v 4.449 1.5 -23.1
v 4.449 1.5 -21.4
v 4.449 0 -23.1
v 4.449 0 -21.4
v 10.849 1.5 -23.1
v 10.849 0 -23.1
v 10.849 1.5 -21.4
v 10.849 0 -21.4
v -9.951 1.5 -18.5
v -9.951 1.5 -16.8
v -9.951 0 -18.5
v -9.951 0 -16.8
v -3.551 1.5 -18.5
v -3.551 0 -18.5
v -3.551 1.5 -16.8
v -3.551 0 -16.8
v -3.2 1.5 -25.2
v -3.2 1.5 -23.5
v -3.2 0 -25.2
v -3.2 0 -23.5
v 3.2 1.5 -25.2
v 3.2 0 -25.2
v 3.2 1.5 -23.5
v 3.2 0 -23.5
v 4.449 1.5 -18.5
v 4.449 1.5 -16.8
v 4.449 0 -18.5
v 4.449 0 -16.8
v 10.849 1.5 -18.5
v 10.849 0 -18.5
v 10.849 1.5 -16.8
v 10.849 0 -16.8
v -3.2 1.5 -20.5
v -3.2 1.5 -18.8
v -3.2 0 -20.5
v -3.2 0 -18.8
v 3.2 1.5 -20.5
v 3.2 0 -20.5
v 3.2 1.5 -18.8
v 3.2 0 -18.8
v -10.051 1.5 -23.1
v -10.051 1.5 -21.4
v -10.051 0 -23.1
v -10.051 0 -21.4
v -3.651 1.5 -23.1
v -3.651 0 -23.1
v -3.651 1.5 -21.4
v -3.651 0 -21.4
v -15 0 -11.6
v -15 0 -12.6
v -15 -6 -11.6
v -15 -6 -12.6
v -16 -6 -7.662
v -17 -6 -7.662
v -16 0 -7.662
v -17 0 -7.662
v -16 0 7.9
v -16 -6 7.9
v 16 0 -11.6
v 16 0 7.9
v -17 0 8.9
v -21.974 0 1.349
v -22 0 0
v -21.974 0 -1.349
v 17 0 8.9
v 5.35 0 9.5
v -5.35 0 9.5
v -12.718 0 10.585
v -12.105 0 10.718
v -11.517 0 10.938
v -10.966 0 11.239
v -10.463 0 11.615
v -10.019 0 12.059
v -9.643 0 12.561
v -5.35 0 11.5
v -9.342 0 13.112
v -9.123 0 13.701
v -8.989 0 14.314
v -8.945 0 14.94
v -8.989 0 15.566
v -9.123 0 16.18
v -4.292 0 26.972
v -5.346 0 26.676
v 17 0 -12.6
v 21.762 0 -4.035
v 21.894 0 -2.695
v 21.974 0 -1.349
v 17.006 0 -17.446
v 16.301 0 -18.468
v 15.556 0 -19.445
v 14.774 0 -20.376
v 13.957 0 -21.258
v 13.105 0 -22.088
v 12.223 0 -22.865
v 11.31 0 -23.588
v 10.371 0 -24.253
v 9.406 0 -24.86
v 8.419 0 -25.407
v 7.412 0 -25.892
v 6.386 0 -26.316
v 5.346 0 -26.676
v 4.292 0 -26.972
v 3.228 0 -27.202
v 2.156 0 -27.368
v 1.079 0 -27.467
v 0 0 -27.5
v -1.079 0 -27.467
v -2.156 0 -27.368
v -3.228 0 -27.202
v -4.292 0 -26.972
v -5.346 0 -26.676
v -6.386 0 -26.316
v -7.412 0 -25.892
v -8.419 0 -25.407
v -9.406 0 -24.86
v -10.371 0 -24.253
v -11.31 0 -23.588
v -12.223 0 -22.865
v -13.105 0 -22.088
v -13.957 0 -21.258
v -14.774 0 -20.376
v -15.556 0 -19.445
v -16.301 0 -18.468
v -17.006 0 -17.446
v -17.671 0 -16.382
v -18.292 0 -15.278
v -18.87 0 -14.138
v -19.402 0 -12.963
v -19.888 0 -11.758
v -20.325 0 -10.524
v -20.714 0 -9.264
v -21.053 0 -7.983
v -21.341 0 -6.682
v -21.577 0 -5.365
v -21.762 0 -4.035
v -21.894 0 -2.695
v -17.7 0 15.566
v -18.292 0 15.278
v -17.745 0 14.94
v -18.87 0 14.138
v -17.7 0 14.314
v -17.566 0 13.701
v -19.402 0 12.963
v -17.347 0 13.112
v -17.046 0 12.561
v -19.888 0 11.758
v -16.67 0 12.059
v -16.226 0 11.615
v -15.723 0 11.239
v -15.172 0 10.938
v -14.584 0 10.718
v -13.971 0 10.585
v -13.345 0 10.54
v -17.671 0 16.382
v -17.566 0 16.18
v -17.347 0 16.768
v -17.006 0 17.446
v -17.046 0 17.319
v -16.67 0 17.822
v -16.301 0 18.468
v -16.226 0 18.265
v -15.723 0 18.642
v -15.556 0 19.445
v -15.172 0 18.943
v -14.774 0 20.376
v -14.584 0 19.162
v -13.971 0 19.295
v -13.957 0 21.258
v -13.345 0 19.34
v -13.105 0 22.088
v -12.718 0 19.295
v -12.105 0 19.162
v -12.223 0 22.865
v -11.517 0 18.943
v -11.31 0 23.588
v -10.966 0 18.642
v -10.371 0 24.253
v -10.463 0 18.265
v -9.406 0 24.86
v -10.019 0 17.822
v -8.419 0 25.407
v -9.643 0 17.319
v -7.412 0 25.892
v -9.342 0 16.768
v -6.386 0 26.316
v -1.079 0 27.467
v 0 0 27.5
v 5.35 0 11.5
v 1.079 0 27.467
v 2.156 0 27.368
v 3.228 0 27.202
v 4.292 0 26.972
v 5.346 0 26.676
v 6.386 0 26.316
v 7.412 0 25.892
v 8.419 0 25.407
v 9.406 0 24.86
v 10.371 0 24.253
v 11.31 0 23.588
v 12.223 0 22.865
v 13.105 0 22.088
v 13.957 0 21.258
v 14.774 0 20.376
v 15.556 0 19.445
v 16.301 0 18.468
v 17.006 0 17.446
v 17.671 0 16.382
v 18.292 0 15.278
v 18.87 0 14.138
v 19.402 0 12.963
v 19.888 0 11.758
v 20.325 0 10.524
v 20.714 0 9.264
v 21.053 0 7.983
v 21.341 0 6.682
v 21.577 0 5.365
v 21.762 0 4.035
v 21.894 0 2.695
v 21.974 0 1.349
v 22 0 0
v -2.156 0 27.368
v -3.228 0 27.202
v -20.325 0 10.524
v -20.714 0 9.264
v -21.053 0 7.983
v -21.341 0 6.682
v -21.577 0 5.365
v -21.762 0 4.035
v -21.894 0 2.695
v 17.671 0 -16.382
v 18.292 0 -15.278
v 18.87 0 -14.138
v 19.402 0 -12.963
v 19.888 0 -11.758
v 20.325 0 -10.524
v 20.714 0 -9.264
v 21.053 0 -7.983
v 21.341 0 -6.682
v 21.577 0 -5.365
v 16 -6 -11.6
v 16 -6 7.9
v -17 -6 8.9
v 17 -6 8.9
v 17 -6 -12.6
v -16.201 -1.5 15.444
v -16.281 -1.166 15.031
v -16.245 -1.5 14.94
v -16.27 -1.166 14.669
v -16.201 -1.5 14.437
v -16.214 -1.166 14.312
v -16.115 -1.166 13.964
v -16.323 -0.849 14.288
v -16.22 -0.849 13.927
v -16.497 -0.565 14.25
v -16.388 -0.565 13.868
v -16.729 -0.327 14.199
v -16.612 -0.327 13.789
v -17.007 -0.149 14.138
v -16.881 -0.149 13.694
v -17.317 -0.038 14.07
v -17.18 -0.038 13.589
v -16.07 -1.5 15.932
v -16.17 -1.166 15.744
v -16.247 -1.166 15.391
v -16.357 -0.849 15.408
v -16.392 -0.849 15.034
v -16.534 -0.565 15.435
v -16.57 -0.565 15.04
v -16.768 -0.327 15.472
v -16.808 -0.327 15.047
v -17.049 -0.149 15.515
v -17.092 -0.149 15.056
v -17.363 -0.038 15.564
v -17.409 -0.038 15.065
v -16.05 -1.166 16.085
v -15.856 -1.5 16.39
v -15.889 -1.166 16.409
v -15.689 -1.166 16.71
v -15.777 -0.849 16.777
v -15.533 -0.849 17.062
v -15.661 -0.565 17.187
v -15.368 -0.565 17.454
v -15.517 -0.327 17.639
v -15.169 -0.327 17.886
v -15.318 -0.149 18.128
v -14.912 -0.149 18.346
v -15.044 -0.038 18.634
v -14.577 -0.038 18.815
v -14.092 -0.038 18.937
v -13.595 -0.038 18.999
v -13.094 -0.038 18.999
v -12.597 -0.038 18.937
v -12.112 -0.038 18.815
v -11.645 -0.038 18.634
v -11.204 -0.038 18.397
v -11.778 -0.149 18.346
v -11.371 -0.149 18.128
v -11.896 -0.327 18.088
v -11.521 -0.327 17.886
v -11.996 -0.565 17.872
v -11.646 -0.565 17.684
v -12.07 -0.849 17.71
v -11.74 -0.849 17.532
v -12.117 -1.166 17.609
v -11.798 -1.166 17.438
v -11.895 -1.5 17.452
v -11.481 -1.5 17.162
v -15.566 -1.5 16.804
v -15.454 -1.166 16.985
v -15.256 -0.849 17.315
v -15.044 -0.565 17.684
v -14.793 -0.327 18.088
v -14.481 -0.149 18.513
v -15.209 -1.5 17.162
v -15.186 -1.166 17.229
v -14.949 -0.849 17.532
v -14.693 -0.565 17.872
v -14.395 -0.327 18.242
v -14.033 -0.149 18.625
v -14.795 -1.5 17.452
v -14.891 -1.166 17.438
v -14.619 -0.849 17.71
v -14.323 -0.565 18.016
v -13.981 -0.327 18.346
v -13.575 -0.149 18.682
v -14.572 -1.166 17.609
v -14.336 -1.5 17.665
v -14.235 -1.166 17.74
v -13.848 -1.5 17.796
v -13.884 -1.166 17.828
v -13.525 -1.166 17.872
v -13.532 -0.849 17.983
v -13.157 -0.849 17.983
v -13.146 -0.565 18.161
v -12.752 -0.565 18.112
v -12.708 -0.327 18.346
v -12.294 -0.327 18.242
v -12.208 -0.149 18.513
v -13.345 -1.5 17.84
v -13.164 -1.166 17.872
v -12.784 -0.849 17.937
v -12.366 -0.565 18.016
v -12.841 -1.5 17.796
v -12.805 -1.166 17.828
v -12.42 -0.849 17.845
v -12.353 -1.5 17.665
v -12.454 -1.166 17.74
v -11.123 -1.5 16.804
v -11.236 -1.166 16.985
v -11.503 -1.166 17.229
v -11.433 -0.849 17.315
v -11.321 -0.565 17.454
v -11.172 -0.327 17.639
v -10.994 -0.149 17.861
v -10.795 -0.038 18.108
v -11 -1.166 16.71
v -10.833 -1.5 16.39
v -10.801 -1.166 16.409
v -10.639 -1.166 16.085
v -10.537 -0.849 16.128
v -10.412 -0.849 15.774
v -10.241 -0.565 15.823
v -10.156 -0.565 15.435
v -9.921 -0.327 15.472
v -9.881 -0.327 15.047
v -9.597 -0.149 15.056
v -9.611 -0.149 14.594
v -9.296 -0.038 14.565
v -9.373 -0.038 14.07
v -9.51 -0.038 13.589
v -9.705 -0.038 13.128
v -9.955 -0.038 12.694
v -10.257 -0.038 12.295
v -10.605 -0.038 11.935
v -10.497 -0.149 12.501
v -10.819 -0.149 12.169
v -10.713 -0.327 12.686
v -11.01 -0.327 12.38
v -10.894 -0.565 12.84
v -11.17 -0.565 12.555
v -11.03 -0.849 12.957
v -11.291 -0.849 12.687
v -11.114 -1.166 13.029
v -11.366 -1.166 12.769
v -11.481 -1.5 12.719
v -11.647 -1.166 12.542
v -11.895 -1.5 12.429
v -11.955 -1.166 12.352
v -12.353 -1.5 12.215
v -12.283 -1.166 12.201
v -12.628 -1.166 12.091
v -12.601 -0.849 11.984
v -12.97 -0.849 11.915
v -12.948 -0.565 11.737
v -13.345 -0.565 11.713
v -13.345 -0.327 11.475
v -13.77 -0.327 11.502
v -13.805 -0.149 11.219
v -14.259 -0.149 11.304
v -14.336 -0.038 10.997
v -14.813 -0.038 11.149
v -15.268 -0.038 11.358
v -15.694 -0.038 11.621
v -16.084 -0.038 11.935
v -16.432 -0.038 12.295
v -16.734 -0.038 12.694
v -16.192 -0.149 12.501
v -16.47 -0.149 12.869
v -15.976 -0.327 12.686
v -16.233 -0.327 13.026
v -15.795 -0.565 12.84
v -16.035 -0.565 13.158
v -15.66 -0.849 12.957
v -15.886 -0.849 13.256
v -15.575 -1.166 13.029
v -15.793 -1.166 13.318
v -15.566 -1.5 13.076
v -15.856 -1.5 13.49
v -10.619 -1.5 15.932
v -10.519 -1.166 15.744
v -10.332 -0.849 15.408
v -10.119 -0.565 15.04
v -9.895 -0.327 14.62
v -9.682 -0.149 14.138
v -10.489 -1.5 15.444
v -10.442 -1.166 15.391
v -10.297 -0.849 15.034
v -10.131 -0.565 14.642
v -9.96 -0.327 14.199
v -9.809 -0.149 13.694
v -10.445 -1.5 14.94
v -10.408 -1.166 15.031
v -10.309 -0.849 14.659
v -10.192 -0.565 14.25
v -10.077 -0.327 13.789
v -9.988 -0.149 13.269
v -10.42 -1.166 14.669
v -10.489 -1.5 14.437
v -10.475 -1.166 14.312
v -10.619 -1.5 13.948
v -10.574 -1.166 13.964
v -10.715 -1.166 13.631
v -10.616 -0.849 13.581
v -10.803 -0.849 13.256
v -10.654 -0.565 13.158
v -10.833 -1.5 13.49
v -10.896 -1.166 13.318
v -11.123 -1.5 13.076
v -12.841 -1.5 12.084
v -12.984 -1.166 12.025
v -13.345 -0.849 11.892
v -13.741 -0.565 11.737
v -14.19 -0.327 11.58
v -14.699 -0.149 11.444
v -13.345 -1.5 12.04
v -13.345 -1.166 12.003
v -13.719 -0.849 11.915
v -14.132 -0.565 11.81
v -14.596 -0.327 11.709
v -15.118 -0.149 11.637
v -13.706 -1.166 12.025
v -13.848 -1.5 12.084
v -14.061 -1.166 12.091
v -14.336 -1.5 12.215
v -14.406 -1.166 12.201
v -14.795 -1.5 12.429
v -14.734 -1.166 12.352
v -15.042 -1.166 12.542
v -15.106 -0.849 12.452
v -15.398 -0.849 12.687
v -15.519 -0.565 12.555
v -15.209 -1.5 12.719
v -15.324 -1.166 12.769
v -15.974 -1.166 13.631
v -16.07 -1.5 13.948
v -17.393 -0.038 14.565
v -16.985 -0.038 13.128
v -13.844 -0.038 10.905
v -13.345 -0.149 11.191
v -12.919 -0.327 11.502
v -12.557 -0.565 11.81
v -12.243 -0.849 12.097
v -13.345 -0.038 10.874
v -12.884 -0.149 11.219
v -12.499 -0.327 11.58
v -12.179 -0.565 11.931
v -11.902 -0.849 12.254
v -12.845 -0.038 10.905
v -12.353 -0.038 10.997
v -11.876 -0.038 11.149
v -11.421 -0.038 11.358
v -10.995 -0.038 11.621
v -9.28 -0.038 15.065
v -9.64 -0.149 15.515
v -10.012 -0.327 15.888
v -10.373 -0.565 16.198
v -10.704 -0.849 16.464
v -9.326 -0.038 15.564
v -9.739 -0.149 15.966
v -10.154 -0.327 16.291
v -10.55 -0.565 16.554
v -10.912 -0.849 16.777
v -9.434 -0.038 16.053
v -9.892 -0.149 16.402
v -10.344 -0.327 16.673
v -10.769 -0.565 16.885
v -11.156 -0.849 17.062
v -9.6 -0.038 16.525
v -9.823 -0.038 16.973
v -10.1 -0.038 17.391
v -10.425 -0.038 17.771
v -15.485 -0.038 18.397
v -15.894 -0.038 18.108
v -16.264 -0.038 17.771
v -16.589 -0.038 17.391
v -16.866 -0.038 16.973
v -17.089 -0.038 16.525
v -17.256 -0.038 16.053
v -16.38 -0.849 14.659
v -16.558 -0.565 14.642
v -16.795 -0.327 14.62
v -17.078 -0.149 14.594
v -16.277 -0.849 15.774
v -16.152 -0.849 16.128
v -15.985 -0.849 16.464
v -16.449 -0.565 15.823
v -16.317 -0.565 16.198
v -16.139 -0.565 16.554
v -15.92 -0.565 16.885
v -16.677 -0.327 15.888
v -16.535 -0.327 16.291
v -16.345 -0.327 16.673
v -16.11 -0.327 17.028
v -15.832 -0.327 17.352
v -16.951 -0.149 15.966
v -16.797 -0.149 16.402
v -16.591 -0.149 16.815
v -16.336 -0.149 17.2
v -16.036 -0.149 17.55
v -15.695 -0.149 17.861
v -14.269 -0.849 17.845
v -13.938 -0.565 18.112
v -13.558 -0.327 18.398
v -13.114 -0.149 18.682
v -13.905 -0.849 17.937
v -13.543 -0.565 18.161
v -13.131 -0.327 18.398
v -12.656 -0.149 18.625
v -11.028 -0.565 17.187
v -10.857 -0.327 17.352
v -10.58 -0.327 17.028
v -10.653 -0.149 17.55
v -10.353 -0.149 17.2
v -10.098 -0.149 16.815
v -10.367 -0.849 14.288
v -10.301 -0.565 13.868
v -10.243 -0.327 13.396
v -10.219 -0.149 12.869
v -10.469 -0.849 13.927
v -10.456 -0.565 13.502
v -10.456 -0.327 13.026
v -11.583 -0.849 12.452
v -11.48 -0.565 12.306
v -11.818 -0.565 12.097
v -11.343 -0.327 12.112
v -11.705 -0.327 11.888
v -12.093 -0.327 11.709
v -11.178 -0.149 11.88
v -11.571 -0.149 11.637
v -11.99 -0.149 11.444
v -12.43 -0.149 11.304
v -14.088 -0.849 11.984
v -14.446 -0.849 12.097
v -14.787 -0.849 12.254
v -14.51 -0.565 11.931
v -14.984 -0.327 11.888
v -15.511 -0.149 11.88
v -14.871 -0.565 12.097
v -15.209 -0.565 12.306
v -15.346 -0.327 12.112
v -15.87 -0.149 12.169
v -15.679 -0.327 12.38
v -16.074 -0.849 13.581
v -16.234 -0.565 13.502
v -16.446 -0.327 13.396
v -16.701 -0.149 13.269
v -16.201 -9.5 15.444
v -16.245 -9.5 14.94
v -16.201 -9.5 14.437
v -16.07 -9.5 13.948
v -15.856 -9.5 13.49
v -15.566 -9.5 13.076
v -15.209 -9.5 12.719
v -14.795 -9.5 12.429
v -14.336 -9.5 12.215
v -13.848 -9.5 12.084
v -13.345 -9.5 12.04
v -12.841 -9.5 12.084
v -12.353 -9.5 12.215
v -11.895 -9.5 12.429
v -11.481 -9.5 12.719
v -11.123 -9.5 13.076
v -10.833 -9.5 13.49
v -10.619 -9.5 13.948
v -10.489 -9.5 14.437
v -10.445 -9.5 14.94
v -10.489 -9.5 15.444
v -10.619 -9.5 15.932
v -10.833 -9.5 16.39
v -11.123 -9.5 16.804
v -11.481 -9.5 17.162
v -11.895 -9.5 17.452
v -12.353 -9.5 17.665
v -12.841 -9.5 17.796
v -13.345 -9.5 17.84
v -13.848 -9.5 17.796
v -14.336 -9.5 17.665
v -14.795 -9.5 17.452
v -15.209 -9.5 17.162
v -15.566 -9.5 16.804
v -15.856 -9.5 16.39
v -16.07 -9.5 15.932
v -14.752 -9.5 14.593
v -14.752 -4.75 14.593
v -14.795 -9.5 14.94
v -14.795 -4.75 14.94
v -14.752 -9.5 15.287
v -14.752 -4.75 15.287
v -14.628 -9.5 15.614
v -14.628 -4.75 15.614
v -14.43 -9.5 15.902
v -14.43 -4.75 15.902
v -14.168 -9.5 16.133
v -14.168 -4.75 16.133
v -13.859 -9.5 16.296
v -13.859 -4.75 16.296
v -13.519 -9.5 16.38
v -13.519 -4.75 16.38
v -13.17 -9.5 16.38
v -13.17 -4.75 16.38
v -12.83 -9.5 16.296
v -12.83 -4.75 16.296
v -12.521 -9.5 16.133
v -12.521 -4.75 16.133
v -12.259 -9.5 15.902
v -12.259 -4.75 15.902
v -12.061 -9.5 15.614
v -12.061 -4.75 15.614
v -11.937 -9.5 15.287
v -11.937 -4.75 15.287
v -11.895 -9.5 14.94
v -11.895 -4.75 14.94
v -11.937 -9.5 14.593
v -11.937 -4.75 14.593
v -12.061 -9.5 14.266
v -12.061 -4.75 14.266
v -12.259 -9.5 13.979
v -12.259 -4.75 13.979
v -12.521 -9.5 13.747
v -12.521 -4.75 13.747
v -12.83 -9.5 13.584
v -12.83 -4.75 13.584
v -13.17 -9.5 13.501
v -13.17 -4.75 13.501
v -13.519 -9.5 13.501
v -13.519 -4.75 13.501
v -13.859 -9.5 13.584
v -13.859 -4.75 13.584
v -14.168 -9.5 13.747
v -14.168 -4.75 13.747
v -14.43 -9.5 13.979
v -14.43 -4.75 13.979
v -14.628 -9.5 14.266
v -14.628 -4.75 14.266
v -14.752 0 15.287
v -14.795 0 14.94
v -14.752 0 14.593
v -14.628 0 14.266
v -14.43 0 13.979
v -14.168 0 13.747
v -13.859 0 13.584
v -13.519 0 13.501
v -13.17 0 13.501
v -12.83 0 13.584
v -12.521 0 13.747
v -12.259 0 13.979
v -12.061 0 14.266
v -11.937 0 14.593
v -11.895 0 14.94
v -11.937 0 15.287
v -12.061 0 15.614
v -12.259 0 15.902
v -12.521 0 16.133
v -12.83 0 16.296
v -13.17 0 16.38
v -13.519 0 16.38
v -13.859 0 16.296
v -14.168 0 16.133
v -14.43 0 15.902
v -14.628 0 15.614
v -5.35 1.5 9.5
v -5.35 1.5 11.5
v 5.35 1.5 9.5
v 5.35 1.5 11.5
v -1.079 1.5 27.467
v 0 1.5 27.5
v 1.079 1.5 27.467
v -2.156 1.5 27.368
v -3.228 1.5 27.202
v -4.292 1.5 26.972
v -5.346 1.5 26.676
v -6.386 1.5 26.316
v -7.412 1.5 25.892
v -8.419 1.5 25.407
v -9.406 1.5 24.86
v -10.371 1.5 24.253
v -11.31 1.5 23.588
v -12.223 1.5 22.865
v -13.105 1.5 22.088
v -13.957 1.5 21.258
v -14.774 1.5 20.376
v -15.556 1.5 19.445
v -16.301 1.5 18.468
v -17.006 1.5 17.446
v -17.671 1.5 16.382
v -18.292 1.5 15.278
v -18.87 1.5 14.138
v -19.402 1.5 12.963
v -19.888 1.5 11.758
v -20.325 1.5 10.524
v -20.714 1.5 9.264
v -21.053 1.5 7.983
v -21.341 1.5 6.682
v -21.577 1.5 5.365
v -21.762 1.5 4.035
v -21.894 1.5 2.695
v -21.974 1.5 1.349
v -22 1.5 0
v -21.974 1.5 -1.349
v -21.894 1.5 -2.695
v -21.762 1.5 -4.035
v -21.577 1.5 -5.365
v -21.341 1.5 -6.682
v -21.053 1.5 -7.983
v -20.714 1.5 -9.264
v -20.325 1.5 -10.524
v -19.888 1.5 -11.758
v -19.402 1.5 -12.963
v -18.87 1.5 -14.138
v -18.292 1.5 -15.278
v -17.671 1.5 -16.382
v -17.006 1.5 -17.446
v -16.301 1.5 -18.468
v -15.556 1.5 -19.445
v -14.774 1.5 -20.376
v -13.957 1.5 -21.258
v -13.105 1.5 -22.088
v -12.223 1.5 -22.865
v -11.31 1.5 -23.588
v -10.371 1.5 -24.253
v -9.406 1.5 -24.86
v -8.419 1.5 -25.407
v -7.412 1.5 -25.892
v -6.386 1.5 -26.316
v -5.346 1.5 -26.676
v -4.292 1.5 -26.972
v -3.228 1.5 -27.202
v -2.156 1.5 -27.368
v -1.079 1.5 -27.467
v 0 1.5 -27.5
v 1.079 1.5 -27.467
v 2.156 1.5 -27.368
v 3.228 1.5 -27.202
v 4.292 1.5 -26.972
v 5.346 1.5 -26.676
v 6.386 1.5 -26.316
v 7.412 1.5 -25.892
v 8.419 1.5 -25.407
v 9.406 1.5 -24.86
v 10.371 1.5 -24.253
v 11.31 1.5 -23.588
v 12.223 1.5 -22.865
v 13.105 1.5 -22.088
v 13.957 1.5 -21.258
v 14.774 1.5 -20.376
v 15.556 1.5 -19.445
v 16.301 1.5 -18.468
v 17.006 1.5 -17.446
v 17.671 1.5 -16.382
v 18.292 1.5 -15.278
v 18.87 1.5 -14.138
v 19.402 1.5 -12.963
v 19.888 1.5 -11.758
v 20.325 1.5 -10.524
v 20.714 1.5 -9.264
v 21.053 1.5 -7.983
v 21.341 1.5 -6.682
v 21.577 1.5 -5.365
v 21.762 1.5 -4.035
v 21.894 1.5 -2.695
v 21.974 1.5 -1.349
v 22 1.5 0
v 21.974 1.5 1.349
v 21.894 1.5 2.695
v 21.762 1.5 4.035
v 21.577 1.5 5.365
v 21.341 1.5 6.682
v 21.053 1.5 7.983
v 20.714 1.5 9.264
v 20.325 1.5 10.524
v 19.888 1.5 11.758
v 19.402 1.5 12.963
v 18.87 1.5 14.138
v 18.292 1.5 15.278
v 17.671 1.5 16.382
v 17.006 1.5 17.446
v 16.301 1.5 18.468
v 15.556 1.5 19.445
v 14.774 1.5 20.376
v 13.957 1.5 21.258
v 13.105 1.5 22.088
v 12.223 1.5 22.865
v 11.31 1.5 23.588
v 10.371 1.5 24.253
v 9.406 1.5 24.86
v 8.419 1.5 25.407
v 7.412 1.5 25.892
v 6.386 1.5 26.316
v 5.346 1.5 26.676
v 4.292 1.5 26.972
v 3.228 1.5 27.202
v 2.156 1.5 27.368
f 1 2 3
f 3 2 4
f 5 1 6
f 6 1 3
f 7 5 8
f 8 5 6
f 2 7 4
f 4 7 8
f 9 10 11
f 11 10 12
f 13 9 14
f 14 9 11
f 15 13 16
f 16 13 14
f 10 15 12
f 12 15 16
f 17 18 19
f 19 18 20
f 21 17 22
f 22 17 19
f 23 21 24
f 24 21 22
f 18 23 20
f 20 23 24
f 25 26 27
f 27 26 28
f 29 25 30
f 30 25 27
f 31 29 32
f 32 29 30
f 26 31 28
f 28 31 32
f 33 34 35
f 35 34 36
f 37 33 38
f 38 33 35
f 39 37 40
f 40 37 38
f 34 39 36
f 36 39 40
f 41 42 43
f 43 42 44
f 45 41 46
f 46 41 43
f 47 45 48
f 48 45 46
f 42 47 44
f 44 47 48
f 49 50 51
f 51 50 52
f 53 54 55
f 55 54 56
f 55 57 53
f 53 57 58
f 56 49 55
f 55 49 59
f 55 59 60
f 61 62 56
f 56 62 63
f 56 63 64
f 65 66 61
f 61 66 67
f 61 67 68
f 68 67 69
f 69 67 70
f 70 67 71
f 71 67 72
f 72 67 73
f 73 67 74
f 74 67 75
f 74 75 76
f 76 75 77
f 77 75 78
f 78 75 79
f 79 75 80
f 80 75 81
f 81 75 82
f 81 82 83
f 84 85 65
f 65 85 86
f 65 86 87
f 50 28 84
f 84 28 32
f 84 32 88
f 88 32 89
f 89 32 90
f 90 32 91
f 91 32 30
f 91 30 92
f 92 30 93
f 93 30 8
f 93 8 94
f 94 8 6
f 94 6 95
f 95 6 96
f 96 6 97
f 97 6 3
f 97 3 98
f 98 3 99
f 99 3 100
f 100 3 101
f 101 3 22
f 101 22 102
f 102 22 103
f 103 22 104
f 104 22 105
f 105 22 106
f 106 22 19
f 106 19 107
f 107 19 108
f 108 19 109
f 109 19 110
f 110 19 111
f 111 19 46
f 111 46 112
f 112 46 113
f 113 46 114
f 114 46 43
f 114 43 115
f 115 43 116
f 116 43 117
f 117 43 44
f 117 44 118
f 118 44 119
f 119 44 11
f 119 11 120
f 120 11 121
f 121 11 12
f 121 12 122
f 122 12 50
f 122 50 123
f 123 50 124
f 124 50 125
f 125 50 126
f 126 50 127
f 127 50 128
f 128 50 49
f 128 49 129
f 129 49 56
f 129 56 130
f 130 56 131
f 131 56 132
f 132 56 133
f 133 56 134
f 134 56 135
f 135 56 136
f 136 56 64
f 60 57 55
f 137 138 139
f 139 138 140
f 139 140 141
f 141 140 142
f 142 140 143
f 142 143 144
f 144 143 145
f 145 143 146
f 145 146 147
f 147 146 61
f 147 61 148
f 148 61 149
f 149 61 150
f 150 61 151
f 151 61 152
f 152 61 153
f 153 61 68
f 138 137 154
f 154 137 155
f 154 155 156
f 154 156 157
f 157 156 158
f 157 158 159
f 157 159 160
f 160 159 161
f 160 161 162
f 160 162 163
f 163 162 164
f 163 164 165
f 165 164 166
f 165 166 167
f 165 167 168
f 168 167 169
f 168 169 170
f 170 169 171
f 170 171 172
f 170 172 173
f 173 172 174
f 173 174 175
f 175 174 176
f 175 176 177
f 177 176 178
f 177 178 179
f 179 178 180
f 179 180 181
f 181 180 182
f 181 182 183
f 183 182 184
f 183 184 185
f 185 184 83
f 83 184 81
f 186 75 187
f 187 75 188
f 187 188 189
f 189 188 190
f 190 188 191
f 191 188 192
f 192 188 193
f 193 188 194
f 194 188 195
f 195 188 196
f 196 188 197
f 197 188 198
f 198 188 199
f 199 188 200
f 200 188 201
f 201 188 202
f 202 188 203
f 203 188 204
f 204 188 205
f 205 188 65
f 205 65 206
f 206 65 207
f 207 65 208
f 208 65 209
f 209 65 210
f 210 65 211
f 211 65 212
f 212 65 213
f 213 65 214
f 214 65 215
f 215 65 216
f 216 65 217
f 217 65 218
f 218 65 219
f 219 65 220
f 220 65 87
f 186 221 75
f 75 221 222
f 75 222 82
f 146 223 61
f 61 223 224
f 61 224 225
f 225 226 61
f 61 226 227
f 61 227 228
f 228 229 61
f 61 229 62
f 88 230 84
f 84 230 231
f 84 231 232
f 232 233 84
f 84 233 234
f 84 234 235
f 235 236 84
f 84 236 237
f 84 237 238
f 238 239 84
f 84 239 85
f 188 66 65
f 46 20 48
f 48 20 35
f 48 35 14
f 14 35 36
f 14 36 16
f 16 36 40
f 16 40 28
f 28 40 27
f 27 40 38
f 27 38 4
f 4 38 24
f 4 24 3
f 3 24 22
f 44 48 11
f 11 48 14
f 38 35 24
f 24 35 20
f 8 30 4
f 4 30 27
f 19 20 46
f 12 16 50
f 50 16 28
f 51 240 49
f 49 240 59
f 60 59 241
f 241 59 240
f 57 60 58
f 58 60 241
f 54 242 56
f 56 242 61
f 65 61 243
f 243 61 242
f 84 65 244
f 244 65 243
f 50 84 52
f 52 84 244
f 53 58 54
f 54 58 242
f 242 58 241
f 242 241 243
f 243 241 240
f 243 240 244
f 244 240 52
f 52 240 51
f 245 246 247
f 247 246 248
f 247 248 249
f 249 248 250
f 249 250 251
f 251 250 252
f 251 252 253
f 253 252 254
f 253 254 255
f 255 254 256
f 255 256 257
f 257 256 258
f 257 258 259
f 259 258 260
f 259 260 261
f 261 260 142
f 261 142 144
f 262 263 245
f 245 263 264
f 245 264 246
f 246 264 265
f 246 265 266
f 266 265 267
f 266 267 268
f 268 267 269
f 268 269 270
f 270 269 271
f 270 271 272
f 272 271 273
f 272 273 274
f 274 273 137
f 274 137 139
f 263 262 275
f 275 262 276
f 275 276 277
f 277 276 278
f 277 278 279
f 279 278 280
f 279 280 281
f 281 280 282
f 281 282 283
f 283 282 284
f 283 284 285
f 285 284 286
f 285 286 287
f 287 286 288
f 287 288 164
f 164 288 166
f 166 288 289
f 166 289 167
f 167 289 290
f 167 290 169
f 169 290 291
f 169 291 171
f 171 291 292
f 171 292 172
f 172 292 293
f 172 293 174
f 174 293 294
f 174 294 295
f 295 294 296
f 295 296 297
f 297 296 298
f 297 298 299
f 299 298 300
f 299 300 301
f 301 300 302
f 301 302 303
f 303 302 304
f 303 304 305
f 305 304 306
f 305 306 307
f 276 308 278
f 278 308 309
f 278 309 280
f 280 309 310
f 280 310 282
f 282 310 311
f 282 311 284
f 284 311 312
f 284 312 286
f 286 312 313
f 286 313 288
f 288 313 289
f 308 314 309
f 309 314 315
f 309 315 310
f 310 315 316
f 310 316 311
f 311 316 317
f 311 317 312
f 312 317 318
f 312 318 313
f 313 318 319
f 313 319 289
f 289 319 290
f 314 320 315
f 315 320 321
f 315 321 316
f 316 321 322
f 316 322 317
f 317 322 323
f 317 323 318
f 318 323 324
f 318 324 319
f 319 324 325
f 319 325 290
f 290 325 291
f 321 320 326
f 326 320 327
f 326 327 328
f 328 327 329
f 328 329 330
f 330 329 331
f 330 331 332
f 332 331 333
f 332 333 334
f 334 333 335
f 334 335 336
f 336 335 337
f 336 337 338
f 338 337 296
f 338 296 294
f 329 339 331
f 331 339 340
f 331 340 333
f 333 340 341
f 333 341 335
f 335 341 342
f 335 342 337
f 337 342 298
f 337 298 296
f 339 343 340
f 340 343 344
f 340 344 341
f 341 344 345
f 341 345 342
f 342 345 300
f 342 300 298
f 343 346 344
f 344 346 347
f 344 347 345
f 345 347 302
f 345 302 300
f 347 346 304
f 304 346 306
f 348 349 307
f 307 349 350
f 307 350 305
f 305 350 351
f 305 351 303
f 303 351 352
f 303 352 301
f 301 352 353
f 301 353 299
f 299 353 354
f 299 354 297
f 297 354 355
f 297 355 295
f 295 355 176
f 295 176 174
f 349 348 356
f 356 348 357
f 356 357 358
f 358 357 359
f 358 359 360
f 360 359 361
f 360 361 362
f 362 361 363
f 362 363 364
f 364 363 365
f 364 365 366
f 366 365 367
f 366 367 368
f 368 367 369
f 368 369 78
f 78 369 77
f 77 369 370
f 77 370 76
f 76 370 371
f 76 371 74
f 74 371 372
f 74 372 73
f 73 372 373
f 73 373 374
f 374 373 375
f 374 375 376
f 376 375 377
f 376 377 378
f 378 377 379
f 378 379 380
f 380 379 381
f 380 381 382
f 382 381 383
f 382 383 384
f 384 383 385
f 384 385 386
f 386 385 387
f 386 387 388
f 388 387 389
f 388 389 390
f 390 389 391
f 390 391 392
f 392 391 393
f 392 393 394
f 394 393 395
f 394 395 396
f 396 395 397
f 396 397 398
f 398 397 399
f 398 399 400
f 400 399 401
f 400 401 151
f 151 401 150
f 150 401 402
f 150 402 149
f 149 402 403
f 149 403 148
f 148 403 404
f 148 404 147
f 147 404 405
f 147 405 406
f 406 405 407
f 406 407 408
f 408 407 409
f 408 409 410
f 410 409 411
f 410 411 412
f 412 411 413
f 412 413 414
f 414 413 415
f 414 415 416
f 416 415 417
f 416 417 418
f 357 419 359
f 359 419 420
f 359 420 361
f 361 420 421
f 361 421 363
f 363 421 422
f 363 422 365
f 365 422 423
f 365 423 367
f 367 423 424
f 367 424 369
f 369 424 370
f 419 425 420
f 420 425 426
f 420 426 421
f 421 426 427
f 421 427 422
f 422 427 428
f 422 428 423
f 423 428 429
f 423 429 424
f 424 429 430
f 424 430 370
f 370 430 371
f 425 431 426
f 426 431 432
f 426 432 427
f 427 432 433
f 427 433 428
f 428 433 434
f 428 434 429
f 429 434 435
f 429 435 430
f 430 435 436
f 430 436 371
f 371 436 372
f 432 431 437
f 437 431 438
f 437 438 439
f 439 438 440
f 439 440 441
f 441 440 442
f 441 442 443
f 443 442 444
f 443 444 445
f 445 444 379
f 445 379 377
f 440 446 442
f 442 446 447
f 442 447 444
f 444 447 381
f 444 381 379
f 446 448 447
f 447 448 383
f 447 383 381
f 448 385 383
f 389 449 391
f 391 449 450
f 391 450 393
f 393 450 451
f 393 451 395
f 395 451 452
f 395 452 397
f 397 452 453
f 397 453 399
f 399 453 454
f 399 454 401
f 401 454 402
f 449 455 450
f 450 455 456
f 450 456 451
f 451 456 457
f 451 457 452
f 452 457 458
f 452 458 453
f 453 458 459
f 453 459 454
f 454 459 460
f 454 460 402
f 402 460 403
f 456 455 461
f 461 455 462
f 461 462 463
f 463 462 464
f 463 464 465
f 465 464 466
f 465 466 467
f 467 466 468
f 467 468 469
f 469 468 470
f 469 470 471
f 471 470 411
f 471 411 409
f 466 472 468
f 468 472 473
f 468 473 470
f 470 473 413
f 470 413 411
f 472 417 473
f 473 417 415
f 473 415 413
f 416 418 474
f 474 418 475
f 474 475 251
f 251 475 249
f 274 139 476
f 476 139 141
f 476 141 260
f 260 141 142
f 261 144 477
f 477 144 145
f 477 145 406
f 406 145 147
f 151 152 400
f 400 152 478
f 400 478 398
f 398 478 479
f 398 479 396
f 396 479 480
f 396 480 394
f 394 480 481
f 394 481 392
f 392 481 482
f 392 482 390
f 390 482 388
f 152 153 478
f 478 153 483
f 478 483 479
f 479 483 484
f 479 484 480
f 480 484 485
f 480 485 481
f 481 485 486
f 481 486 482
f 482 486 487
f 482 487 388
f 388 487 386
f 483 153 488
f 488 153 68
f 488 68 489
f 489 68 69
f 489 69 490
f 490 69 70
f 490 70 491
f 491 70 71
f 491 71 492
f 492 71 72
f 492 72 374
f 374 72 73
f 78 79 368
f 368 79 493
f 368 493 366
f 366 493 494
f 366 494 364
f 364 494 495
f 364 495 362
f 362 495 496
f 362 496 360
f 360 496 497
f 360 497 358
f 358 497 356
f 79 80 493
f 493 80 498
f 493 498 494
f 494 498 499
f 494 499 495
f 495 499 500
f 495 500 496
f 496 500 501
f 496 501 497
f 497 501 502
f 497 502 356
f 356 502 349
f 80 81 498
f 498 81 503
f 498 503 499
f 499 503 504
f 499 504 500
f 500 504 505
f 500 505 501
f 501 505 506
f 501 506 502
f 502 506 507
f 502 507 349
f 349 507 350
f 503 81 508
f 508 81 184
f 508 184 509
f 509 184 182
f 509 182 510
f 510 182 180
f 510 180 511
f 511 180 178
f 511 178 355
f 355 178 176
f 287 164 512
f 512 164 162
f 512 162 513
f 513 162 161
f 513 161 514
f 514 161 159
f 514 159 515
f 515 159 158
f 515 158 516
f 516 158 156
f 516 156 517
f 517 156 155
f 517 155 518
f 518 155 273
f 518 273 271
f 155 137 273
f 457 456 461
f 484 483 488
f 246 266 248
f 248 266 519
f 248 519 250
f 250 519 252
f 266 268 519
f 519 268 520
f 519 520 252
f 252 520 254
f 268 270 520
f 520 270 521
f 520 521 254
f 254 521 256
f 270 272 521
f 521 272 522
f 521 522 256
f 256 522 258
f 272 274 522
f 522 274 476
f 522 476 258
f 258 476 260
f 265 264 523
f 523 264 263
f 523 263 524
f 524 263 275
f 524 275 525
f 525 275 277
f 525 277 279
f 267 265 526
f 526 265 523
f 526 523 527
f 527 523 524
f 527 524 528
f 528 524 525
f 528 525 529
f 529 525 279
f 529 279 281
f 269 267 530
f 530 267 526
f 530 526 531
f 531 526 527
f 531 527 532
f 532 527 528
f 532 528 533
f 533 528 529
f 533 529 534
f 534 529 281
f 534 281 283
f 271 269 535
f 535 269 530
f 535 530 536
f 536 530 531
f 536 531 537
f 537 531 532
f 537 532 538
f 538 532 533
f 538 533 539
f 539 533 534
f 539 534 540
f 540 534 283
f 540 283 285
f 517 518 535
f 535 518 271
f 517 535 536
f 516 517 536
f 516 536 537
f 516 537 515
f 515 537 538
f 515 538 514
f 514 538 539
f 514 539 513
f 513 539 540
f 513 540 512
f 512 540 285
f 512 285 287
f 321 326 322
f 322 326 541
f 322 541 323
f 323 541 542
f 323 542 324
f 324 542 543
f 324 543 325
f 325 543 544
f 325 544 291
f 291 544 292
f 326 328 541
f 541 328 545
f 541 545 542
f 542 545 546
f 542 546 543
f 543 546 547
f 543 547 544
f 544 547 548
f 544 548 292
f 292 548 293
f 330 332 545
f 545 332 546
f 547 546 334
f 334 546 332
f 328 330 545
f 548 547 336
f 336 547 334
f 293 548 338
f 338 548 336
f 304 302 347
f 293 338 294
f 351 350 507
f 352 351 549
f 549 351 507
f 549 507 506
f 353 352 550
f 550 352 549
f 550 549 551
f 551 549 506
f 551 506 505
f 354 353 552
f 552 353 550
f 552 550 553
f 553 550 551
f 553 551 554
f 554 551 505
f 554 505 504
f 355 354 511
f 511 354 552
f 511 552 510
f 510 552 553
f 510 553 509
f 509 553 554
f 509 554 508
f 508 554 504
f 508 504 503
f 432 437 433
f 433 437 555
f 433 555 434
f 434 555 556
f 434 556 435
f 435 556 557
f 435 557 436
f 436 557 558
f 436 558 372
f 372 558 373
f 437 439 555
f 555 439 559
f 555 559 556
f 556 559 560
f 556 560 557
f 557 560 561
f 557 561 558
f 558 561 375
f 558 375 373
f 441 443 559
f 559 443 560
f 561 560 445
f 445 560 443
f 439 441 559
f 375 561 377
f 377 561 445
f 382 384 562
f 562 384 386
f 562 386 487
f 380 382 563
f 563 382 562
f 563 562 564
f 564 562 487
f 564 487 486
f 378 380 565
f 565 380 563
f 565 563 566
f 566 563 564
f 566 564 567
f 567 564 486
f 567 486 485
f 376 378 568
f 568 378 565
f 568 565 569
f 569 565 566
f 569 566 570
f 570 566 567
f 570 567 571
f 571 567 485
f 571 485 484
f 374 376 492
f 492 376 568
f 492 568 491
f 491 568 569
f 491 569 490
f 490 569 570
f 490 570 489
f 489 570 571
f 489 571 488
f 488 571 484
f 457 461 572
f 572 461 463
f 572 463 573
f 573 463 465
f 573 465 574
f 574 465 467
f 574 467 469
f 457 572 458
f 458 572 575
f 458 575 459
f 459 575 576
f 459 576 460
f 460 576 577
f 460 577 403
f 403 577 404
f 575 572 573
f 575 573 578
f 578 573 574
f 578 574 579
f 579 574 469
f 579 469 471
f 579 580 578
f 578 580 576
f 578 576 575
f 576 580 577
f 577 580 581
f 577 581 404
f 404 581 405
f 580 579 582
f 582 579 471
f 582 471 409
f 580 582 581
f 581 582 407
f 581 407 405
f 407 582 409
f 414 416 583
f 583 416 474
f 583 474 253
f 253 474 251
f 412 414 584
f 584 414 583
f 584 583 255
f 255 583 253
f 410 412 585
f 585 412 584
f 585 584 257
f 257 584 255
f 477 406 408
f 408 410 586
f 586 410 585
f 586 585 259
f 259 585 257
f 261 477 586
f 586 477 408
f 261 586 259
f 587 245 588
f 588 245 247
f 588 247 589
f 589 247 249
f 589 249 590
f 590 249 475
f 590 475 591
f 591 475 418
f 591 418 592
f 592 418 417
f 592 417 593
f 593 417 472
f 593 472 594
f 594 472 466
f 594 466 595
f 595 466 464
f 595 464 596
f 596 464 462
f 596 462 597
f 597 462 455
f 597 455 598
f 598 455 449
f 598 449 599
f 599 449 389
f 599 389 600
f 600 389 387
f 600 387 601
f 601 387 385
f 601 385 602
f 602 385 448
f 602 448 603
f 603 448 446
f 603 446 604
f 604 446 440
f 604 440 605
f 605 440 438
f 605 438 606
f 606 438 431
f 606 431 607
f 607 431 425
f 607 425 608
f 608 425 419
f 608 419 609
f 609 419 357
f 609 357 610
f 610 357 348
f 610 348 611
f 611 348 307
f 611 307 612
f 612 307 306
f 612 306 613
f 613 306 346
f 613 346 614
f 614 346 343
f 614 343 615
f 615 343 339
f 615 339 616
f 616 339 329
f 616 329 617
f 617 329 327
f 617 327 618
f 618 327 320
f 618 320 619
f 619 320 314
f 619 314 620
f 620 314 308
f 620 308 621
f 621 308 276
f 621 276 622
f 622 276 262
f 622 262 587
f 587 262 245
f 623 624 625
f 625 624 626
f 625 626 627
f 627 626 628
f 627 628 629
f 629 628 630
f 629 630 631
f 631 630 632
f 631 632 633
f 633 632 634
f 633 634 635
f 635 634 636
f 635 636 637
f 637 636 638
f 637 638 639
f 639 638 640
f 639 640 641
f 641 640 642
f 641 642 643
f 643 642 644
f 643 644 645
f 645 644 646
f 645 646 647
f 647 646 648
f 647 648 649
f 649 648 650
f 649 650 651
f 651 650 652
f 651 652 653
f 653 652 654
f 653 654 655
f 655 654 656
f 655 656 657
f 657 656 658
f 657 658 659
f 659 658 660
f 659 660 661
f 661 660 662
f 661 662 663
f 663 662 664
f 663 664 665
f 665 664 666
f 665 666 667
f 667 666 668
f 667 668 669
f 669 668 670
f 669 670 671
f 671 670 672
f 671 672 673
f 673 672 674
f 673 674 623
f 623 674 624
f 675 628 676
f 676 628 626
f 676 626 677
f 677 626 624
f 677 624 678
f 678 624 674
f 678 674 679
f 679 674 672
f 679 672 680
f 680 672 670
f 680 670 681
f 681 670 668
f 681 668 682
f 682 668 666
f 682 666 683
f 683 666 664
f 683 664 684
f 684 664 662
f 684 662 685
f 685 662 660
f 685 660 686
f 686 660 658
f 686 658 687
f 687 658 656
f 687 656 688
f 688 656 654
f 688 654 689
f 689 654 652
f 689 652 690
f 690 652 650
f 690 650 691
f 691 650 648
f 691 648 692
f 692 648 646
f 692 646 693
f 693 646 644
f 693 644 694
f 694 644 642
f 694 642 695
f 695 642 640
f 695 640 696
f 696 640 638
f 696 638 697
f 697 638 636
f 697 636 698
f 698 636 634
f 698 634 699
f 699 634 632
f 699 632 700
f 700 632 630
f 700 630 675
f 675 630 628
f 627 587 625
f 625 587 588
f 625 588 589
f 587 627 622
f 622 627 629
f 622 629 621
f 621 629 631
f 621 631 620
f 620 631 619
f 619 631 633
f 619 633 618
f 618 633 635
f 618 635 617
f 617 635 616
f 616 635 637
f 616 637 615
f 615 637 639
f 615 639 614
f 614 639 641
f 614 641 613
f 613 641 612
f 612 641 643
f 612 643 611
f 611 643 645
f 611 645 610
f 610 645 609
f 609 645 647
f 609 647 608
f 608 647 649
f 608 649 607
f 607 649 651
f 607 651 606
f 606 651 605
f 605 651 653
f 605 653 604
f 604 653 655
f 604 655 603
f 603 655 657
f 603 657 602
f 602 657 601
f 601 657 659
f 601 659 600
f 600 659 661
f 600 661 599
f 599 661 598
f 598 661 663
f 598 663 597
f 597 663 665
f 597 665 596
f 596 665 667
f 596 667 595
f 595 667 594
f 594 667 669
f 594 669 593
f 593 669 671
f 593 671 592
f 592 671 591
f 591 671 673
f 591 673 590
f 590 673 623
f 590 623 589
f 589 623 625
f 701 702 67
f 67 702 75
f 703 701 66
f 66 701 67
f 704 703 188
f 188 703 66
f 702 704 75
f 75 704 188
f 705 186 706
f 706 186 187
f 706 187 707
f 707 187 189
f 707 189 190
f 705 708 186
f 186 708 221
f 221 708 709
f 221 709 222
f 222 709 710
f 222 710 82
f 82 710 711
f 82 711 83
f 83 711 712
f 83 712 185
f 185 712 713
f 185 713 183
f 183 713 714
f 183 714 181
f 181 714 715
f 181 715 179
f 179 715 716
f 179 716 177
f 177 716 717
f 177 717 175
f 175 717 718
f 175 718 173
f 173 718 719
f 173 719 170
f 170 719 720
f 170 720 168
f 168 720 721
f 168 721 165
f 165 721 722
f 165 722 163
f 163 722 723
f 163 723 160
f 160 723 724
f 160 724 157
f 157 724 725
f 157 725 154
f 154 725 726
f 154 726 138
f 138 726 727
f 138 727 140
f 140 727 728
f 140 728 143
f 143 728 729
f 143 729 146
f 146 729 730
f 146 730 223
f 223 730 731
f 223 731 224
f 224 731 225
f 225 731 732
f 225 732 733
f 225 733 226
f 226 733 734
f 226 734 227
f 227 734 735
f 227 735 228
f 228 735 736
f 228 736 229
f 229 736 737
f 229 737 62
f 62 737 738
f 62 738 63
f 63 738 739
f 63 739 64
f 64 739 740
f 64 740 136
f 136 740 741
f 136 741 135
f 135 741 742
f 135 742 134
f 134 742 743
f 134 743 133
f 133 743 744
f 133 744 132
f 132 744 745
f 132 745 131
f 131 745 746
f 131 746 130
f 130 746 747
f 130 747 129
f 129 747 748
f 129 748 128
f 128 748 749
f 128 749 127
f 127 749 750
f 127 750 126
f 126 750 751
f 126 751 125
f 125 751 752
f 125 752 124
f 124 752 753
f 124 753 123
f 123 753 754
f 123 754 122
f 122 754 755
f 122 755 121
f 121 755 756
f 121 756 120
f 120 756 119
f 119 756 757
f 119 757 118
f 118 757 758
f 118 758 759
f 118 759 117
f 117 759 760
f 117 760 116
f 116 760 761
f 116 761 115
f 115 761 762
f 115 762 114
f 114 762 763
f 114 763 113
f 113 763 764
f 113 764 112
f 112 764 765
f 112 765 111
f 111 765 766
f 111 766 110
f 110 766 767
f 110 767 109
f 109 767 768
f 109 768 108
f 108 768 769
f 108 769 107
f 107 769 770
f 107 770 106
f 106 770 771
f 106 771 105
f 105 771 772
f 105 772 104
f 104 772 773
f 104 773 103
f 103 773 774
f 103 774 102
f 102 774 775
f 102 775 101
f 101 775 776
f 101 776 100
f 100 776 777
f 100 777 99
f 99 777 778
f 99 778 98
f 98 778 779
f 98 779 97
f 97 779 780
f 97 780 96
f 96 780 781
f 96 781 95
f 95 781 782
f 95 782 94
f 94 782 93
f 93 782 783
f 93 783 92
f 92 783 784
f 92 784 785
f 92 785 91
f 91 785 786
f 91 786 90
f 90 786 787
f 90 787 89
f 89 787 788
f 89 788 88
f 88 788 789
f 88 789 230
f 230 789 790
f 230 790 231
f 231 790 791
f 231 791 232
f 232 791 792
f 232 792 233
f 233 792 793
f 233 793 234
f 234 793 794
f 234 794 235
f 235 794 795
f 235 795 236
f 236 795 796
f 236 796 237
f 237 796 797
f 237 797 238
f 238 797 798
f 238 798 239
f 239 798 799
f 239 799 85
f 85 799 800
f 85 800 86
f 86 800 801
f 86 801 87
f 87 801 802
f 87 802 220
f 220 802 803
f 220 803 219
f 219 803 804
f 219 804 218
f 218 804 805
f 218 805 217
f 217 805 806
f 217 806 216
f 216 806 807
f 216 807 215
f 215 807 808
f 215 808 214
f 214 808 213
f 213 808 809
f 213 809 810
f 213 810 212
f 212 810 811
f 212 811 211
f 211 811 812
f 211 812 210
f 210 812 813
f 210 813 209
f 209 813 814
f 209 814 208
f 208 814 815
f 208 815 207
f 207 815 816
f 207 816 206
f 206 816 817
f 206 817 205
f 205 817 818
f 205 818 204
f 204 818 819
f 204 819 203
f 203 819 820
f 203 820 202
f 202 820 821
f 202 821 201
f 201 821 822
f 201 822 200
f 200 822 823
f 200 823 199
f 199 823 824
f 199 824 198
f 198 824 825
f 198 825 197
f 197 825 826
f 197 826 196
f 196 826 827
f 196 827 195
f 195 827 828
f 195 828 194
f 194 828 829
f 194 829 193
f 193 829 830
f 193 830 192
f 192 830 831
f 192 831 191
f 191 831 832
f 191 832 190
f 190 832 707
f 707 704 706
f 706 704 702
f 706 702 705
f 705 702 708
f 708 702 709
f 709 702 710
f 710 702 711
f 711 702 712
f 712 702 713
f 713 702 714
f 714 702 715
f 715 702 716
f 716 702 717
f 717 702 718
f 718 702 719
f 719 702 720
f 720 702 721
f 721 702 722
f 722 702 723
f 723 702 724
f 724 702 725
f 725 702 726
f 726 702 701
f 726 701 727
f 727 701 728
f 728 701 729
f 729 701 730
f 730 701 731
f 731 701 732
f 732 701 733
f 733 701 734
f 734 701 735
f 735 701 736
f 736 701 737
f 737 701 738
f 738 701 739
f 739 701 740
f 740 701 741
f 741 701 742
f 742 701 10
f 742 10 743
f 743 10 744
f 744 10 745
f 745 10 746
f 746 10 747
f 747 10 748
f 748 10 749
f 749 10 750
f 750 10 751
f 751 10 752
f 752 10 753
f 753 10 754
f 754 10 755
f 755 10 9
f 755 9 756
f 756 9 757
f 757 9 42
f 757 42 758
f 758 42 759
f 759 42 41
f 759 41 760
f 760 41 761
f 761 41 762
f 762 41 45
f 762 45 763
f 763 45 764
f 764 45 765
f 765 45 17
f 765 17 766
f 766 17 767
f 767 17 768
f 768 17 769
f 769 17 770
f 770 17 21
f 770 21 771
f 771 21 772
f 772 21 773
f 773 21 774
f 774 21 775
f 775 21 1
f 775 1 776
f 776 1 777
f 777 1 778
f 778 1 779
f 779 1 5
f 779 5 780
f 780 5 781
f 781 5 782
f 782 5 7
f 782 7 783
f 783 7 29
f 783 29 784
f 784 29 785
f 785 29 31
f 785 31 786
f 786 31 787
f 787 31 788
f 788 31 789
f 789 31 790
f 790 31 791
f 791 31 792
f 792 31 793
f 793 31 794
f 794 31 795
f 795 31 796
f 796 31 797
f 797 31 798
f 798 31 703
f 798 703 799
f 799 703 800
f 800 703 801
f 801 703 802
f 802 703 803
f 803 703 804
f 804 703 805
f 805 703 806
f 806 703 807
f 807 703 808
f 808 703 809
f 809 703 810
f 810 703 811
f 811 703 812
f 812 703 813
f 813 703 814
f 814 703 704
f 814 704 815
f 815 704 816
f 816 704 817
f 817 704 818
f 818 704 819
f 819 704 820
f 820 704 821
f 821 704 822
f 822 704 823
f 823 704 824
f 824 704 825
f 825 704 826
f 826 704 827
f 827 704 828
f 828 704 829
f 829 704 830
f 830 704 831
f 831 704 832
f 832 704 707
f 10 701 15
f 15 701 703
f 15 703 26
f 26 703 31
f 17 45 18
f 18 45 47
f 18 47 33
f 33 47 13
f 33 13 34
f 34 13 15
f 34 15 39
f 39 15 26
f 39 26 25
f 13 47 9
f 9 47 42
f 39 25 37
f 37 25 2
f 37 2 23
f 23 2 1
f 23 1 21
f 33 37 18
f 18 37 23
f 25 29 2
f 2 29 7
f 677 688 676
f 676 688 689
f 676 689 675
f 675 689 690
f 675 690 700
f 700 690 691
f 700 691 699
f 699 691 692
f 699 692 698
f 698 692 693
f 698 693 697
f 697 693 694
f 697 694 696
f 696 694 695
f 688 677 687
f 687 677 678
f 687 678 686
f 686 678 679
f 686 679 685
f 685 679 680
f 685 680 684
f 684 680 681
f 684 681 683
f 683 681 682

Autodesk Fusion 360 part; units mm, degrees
sketch "Sketch1" plane through (0, 0, 0) normal (0, 1, 0) x (1, 0, 0)
  ellipse E0 centre (0, 0) end of major axis (0, 27.5) minor radius 22
  line L0 (0, -27.5) -> (0, 27.5) construction
  line L1 (22, 0) -> (-22, 0) construction
  dimension "d1" = 44
  dimension "d2" = 55
extrude "Extrude1" add sketch "Sketch1" along normal blind 1.5
sketch "Sketch2" plane through (0, 0, 0) normal (0, -1, 0) x (1, 0, 0)
  ellipse E0 centre (0, 0) end of major axis (0, -27.5) minor radius 22
  line L0 (-5.35, 11.5) -> (5.35, 11.5)
  line L1 (5.35, 11.5) -> (5.35, 9.5)
  line L2 (5.35, 9.5) -> (-5.35, 9.5)
  line L3 (-5.35, 9.5) -> (-5.35, 11.5)
  point P0 (0, 27.5)
  dimension "d5" = 10.7
  dimension "d6" = 2
  dimension "d7" = 16
extrude "Extrude2" cut sketch "Sketch2" against normal blind 10 contours L0 L1 L2 L3
sketch "Sketch3" plane through (0, 0, 0) normal (0, -1, 0) x (1, 0, 0)
  line L0 (5.35, 11.5) -> (5.35, 9.5)
  line L1 (5.35, 9.5) -> (-5.35, 9.5)
  line L2 (-5.35, 9.5) -> (-5.35, 11.5)
  line L3 (-5.35, 11.5) -> (5.35, 11.5)
  ellipse E0 centre (0, 0) end of major axis (0, -27.5) minor radius 22
  circle A0 centre (-13.3446, 14.9401) radius 1.45
  circle A1 centre (-13.3446, 14.9401) radius 2.9
  dimension "d10" = 2.9
  dimension "d11" = 5.8
extrude "Extrude3" add sketch "Sketch3" along normal blind 9.5 contours A1
fillet "Fillet1" radius 1.5 1 edges at (-16.0483, 0, 15.9888)
sketch "Sketch4" plane through (0, 0, 0) normal (0, -1, 0) x (1, 0, 0)
  line L0 (5.35, 11.5) -> (5.35, 9.5)
  line L1 (5.35, 9.5) -> (-5.35, 9.5)
  line L2 (-5.35, 9.5) -> (-5.35, 11.5)
  line L3 (-5.35, 11.5) -> (5.35, 11.5)
  line L4 (-16, 7.9) -> (16, 7.9)
  line L5 (16, 7.9) -> (16, -11.6)
  line L6 (16, -11.6) -> (-16, -11.6)
  line L7 (-16, -11.6) -> (-16, 7.9)
  line L8 (-17, 8.9) -> (17, 8.9)
  line L9 (17, 8.9) -> (17, -12.6)
  line L10 (17, -12.6) -> (-17, -12.6)
  line L11 (-17, -12.6) -> (-17, 8.9)
  ellipse E0 centre (0, 0) end of major axis (0, -27.5) minor radius 22
  circle A0 centre (-13.3446, 14.9401) radius 4.4
  dimension "d16" = 32
  dimension "d17" = 19.5
  dimension "d18" = 1
  dimension "d19" = 1
  dimension "d20" = 1
  dimension "d21" = 1
  dimension "d22" = 0.6
extrude "Extrude4" add sketch "Sketch4" along normal blind 6 contours L8 L9 L10 L11
sketch "Sketch5" plane through (0, 0, 0) normal (0, -1, 0) x (1, 0, 0)
  circle A0 centre (-13.3446, 14.9401) radius 4.4
  ellipse E0 centre (0, 0) end of major axis (0, -27.5) minor radius 22
  line L0 (5.35, 11.5) -> (5.35, 9.5)
  line L1 (5.35, 9.5) -> (-5.35, 9.5)
  line L2 (-5.35, 9.5) -> (-5.35, 11.5)
  line L3 (-5.35, 11.5) -> (5.35, 11.5)
  line L4 (-17, -12.6) -> (-17, 8.9)
  line L5 (-17, 8.9) -> (17, 8.9)
  line L6 (17, 8.9) -> (17, -12.6)
  line L7 (17, -12.6) -> (-17, -12.6)
  line L8 (-17, -7.6621) -> (-15, -7.6621)
  line L9 (-15, -7.6621) -> (-15, -12.6621)
  line L10 (-15, -12.6621) -> (-17, -12.6621)
  line L11 (-17, -12.6621) -> (-17, -7.6621)
  dimension "d25" = 2
  dimension "d26" = 5
extrude "Extrude5" cut sketch "Sketch5" along normal blind 6.8 contours L4 L7 L8 L9 L11 | L7 L9 L10 L11
sketch "Sketch6" plane through (0, 0, 0) normal (0, -1, 0) x (1, 0, 0)
  line L0 (5.35, 11.5) -> (5.35, 9.5)
  line L1 (5.35, 9.5) -> (-5.35, 9.5)
  line L2 (-5.35, 9.5) -> (-5.35, 11.5)
  line L3 (-5.35, 11.5) -> (5.35, 11.5)
  ellipse E0 centre (0, 0) end of major axis (0, -27.5) minor radius 22
  circle A0 centre (-13.3446, 14.9401) radius 4.4
  line L4 (-16, -7.6621) -> (-17, -7.6621)
  line L5 (-17, -7.6621) -> (-17, 8.9)
  line L6 (-17, 8.9) -> (17, 8.9)
  line L7 (17, 8.9) -> (17, -12.6)
  line L8 (17, -12.6) -> (-15, -12.6)
  line L9 (-15, -12.6) -> (-15, -11.6)
  line L10 (-15, -11.6) -> (16, -11.6)
  line L11 (16, -11.6) -> (16, 7.9)
  line L12 (16, 7.9) -> (-16, 7.9)
  line L13 (-16, 7.9) -> (-16, -7.6621)
  line L14 (4.4492, -16.8) -> (10.8492, -16.8)
  line L15 (10.8492, -16.8) -> (10.8492, -18.5)
  line L16 (10.8492, -18.5) -> (4.4492, -18.5)
  line L17 (4.4492, -18.5) -> (4.4492, -16.8)
  line L18 (-15, -12.6) -> (17, -12.6)
  line L19 (-9.9508, -16.8) -> (-3.5508, -16.8)
  line L20 (-3.5508, -16.8) -> (-3.5508, -18.5)
  line L21 (-3.5508, -18.5) -> (-9.9508, -18.5)
  line L22 (-9.9508, -18.5) -> (-9.9508, -16.8)
  line L23 (-3.2, -18.8) -> (3.2, -18.8)
  line L24 (3.2, -18.8) -> (3.2, -20.5)
  line L25 (3.2, -20.5) -> (-3.2, -20.5)
  line L26 (-3.2, -20.5) -> (-3.2, -18.8)
  line L27 (-10.0508, -21.4) -> (-3.6508, -21.4)
  line L28 (-3.6508, -21.4) -> (-3.6508, -23.1)
  line L29 (-3.6508, -23.1) -> (-10.0508, -23.1)
  line L30 (-10.0508, -23.1) -> (-10.0508, -21.4)
  line L31 (4.4492, -21.4) -> (10.8492, -21.4)
  line L32 (10.8492, -21.4) -> (10.8492, -23.1)
  line L33 (10.8492, -23.1) -> (4.4492, -23.1)
  line L34 (4.4492, -23.1) -> (4.4492, -21.4)
  line L35 (-3.2, -23.5) -> (3.2, -23.5)
  line L36 (3.2, -23.5) -> (3.2, -25.2)
  line L37 (3.2, -25.2) -> (-3.2, -25.2)
  line L38 (-3.2, -25.2) -> (-3.2, -23.5)
  dimension "d29" = 6.4
  dimension "d30" = 1.7
  dimension "d31" = 4.2
  dimension "d32" = 6.4
  dimension "d33" = 1.7
  dimension "d34" = 8
  dimension "d35" = 4.2
  dimension "d36" = 6.4
  dimension "d37" = 1.7
  dimension "d38" = 6.2
  dimension "d39" = 6.4
  dimension "d40" = 1.7
  dimension "d41" = 8.8
  dimension "d42" = 6.4
  dimension "d43" = 1.7
  dimension "d44" = 8.8
  dimension "d45" = 8.1
  dimension "d46" = 6.4
  dimension "d47" = 1.7
  dimension "d48" = 10.9
extrude "Extrude6" cut sketch "Sketch6" against normal blind 5 contours L14 L15 L16 L17 | L19 L20 L21 L22 | L23 L24 L25 L26 | L27 L28 L29 L30 | L31 L32 L33 L34 | L35 L36 L37 L38
